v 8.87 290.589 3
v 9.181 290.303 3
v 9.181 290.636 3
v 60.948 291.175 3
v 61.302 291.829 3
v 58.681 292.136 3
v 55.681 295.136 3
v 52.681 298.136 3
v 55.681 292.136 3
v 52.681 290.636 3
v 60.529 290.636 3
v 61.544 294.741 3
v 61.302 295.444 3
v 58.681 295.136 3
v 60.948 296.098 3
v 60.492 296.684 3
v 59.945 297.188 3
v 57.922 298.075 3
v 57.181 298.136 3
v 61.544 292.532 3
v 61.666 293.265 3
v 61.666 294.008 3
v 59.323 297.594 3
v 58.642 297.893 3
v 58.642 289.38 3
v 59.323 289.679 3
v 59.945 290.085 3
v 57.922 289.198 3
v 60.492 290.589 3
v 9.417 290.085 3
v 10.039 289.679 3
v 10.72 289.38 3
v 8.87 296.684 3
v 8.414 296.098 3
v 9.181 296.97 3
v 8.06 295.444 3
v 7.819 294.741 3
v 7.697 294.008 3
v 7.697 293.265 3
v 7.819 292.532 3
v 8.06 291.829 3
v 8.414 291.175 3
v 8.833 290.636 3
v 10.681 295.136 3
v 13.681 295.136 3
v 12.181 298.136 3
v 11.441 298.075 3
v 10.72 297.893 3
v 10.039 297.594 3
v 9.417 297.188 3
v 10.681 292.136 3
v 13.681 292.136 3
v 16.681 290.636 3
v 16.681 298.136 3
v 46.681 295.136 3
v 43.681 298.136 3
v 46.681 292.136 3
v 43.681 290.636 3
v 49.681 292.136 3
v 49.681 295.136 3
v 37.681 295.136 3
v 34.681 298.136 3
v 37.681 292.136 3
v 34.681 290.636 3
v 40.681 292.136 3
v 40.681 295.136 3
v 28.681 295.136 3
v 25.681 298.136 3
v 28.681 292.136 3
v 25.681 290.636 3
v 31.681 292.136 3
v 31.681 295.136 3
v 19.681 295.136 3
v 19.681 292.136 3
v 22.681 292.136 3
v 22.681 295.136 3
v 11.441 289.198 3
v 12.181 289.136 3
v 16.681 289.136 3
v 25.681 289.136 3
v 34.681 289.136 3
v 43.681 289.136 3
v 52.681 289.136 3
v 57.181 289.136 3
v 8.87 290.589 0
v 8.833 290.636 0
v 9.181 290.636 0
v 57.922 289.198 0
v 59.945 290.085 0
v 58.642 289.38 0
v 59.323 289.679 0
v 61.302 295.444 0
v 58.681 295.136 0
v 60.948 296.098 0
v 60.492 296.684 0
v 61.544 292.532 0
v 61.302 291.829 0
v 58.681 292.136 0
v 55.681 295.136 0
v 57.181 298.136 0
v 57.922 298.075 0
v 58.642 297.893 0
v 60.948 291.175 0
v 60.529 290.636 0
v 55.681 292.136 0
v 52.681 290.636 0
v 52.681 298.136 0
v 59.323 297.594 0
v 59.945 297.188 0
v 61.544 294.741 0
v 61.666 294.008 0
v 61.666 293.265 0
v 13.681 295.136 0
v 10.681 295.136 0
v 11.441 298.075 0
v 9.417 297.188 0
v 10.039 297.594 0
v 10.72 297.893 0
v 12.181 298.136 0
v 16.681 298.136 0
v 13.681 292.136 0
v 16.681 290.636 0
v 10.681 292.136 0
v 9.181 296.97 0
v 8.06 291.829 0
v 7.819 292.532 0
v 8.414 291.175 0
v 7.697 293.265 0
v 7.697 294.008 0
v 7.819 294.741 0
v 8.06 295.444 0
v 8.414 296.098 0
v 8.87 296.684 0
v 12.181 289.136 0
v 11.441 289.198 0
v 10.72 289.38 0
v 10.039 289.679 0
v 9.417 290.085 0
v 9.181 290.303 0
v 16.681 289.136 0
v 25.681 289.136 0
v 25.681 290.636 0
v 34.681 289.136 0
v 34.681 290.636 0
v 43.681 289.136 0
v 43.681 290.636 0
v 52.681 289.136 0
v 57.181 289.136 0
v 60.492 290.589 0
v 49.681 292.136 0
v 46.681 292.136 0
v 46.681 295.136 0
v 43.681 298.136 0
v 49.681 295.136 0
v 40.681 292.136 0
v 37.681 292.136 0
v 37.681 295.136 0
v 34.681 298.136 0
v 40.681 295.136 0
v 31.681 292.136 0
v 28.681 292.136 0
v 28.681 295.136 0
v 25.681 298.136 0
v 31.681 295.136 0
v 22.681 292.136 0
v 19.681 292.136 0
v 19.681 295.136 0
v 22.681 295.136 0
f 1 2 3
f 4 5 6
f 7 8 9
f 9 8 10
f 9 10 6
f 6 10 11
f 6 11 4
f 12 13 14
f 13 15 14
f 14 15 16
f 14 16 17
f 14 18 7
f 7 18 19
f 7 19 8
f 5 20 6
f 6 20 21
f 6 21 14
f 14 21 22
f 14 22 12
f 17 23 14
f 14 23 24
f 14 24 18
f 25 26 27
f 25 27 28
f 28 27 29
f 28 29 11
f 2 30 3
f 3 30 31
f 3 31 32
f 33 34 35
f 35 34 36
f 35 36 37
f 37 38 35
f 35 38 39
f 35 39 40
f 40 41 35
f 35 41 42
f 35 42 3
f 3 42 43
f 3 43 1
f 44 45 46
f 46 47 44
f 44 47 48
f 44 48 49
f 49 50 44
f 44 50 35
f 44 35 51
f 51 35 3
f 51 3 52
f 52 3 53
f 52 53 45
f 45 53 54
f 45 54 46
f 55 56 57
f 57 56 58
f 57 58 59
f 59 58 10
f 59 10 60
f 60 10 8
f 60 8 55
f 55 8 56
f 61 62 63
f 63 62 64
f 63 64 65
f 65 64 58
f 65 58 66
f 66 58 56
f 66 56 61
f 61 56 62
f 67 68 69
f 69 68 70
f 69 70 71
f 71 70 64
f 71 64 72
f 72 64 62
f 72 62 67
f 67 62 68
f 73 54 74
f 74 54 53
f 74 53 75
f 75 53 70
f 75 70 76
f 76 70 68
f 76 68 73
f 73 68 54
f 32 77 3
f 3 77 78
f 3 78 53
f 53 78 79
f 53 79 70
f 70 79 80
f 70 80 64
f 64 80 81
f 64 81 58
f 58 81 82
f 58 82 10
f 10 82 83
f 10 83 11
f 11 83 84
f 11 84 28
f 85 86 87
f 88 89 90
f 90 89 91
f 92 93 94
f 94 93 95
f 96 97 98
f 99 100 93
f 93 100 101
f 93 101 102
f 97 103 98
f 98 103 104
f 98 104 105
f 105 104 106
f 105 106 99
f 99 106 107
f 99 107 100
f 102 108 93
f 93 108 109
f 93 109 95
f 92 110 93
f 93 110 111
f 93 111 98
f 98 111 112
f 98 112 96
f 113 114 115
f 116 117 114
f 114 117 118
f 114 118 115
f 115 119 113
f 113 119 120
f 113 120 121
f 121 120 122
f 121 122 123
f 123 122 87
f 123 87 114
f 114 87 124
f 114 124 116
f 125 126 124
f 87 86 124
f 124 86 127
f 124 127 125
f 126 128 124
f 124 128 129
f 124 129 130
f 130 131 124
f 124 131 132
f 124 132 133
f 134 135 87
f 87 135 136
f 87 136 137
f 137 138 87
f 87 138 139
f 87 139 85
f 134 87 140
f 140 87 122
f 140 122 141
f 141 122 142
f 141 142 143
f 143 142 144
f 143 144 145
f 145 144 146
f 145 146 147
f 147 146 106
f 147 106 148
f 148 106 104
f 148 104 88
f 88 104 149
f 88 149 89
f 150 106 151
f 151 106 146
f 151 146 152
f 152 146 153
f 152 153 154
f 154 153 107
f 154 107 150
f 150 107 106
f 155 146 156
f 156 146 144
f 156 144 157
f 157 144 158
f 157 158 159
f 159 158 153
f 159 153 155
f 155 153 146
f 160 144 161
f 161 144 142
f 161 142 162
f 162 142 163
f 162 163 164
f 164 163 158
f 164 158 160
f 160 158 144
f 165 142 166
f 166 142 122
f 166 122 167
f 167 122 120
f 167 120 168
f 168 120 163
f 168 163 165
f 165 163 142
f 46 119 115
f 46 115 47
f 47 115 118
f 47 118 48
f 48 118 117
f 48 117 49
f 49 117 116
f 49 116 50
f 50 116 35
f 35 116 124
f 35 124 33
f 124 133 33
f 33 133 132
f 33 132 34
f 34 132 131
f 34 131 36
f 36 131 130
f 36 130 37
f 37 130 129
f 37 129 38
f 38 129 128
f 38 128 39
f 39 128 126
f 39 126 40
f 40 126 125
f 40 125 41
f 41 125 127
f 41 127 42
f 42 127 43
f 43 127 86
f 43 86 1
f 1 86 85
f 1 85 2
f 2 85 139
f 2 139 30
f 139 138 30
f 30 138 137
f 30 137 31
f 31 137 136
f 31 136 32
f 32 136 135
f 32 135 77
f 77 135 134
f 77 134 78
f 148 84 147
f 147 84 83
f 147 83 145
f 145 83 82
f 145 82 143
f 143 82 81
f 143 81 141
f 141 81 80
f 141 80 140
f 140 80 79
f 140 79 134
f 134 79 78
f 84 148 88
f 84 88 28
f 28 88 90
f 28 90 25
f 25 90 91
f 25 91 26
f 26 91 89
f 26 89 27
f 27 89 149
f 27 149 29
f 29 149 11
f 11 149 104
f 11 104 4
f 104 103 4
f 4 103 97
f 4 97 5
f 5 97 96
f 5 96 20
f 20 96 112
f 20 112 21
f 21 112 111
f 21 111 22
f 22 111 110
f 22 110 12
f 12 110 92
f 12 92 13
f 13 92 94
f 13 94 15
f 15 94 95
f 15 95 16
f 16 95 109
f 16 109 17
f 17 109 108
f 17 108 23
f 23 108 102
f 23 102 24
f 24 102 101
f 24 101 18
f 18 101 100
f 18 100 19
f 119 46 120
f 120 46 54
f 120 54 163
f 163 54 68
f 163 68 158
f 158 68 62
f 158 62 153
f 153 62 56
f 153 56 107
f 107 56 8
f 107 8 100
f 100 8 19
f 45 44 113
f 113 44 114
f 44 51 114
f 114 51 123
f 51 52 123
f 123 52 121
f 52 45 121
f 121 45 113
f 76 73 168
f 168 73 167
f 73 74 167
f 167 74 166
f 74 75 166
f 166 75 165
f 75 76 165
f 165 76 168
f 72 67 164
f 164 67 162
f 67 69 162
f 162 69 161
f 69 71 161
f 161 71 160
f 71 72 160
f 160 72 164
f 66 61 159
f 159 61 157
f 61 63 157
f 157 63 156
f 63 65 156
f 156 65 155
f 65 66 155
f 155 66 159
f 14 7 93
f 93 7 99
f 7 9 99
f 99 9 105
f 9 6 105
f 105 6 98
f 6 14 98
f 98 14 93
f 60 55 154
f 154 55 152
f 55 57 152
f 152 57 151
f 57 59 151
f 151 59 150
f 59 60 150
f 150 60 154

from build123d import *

# Parameters (mm, degrees)
MODEL_W                 = 3
MODEL_H                 = 3
SALIENTE_EXTRUIR1_DEPTH = 3


with BuildPart() as part:
    # Model → Saliente-Extruir1 (new body)
    with BuildSketch(Plane.XY):
        with BuildLine():
            Line((12.181222481, 298.136475095), (57.181222481, 298.136475095))
            ThreePointArc((57.181222481, 298.136475095), (61.681222481, 293.636475095), (57.181222481, 289.136475095))
            Line((57.181222481, 289.136475095), (12.181222481, 289.136475095))
            ThreePointArc((12.181222481, 289.136475095), (7.681222481, 293.636475095), (12.181222481, 298.136475095))
        make_face()
        with Locations((12.181222481, 293.636475095)):
            Rectangle(MODEL_W, MODEL_H, mode=Mode.SUBTRACT)
        with Locations((21.181222481, 293.636475095)):
            Rectangle(MODEL_W, MODEL_H, mode=Mode.SUBTRACT)
        with Locations((30.181222481, 293.636475095)):
            Rectangle(MODEL_W, MODEL_H, mode=Mode.SUBTRACT)
        with Locations((39.181222481, 293.636475095)):
            Rectangle(MODEL_W, MODEL_H, mode=Mode.SUBTRACT)
        with Locations((57.181222481, 293.636475095)):
            Rectangle(MODEL_W, MODEL_H, mode=Mode.SUBTRACT)
        with Locations((48.181222481, 293.636475095)):
            Rectangle(MODEL_W, MODEL_H, mode=Mode.SUBTRACT)
    extrude(amount=SALIENTE_EXTRUIR1_DEPTH)


solid = part.part
